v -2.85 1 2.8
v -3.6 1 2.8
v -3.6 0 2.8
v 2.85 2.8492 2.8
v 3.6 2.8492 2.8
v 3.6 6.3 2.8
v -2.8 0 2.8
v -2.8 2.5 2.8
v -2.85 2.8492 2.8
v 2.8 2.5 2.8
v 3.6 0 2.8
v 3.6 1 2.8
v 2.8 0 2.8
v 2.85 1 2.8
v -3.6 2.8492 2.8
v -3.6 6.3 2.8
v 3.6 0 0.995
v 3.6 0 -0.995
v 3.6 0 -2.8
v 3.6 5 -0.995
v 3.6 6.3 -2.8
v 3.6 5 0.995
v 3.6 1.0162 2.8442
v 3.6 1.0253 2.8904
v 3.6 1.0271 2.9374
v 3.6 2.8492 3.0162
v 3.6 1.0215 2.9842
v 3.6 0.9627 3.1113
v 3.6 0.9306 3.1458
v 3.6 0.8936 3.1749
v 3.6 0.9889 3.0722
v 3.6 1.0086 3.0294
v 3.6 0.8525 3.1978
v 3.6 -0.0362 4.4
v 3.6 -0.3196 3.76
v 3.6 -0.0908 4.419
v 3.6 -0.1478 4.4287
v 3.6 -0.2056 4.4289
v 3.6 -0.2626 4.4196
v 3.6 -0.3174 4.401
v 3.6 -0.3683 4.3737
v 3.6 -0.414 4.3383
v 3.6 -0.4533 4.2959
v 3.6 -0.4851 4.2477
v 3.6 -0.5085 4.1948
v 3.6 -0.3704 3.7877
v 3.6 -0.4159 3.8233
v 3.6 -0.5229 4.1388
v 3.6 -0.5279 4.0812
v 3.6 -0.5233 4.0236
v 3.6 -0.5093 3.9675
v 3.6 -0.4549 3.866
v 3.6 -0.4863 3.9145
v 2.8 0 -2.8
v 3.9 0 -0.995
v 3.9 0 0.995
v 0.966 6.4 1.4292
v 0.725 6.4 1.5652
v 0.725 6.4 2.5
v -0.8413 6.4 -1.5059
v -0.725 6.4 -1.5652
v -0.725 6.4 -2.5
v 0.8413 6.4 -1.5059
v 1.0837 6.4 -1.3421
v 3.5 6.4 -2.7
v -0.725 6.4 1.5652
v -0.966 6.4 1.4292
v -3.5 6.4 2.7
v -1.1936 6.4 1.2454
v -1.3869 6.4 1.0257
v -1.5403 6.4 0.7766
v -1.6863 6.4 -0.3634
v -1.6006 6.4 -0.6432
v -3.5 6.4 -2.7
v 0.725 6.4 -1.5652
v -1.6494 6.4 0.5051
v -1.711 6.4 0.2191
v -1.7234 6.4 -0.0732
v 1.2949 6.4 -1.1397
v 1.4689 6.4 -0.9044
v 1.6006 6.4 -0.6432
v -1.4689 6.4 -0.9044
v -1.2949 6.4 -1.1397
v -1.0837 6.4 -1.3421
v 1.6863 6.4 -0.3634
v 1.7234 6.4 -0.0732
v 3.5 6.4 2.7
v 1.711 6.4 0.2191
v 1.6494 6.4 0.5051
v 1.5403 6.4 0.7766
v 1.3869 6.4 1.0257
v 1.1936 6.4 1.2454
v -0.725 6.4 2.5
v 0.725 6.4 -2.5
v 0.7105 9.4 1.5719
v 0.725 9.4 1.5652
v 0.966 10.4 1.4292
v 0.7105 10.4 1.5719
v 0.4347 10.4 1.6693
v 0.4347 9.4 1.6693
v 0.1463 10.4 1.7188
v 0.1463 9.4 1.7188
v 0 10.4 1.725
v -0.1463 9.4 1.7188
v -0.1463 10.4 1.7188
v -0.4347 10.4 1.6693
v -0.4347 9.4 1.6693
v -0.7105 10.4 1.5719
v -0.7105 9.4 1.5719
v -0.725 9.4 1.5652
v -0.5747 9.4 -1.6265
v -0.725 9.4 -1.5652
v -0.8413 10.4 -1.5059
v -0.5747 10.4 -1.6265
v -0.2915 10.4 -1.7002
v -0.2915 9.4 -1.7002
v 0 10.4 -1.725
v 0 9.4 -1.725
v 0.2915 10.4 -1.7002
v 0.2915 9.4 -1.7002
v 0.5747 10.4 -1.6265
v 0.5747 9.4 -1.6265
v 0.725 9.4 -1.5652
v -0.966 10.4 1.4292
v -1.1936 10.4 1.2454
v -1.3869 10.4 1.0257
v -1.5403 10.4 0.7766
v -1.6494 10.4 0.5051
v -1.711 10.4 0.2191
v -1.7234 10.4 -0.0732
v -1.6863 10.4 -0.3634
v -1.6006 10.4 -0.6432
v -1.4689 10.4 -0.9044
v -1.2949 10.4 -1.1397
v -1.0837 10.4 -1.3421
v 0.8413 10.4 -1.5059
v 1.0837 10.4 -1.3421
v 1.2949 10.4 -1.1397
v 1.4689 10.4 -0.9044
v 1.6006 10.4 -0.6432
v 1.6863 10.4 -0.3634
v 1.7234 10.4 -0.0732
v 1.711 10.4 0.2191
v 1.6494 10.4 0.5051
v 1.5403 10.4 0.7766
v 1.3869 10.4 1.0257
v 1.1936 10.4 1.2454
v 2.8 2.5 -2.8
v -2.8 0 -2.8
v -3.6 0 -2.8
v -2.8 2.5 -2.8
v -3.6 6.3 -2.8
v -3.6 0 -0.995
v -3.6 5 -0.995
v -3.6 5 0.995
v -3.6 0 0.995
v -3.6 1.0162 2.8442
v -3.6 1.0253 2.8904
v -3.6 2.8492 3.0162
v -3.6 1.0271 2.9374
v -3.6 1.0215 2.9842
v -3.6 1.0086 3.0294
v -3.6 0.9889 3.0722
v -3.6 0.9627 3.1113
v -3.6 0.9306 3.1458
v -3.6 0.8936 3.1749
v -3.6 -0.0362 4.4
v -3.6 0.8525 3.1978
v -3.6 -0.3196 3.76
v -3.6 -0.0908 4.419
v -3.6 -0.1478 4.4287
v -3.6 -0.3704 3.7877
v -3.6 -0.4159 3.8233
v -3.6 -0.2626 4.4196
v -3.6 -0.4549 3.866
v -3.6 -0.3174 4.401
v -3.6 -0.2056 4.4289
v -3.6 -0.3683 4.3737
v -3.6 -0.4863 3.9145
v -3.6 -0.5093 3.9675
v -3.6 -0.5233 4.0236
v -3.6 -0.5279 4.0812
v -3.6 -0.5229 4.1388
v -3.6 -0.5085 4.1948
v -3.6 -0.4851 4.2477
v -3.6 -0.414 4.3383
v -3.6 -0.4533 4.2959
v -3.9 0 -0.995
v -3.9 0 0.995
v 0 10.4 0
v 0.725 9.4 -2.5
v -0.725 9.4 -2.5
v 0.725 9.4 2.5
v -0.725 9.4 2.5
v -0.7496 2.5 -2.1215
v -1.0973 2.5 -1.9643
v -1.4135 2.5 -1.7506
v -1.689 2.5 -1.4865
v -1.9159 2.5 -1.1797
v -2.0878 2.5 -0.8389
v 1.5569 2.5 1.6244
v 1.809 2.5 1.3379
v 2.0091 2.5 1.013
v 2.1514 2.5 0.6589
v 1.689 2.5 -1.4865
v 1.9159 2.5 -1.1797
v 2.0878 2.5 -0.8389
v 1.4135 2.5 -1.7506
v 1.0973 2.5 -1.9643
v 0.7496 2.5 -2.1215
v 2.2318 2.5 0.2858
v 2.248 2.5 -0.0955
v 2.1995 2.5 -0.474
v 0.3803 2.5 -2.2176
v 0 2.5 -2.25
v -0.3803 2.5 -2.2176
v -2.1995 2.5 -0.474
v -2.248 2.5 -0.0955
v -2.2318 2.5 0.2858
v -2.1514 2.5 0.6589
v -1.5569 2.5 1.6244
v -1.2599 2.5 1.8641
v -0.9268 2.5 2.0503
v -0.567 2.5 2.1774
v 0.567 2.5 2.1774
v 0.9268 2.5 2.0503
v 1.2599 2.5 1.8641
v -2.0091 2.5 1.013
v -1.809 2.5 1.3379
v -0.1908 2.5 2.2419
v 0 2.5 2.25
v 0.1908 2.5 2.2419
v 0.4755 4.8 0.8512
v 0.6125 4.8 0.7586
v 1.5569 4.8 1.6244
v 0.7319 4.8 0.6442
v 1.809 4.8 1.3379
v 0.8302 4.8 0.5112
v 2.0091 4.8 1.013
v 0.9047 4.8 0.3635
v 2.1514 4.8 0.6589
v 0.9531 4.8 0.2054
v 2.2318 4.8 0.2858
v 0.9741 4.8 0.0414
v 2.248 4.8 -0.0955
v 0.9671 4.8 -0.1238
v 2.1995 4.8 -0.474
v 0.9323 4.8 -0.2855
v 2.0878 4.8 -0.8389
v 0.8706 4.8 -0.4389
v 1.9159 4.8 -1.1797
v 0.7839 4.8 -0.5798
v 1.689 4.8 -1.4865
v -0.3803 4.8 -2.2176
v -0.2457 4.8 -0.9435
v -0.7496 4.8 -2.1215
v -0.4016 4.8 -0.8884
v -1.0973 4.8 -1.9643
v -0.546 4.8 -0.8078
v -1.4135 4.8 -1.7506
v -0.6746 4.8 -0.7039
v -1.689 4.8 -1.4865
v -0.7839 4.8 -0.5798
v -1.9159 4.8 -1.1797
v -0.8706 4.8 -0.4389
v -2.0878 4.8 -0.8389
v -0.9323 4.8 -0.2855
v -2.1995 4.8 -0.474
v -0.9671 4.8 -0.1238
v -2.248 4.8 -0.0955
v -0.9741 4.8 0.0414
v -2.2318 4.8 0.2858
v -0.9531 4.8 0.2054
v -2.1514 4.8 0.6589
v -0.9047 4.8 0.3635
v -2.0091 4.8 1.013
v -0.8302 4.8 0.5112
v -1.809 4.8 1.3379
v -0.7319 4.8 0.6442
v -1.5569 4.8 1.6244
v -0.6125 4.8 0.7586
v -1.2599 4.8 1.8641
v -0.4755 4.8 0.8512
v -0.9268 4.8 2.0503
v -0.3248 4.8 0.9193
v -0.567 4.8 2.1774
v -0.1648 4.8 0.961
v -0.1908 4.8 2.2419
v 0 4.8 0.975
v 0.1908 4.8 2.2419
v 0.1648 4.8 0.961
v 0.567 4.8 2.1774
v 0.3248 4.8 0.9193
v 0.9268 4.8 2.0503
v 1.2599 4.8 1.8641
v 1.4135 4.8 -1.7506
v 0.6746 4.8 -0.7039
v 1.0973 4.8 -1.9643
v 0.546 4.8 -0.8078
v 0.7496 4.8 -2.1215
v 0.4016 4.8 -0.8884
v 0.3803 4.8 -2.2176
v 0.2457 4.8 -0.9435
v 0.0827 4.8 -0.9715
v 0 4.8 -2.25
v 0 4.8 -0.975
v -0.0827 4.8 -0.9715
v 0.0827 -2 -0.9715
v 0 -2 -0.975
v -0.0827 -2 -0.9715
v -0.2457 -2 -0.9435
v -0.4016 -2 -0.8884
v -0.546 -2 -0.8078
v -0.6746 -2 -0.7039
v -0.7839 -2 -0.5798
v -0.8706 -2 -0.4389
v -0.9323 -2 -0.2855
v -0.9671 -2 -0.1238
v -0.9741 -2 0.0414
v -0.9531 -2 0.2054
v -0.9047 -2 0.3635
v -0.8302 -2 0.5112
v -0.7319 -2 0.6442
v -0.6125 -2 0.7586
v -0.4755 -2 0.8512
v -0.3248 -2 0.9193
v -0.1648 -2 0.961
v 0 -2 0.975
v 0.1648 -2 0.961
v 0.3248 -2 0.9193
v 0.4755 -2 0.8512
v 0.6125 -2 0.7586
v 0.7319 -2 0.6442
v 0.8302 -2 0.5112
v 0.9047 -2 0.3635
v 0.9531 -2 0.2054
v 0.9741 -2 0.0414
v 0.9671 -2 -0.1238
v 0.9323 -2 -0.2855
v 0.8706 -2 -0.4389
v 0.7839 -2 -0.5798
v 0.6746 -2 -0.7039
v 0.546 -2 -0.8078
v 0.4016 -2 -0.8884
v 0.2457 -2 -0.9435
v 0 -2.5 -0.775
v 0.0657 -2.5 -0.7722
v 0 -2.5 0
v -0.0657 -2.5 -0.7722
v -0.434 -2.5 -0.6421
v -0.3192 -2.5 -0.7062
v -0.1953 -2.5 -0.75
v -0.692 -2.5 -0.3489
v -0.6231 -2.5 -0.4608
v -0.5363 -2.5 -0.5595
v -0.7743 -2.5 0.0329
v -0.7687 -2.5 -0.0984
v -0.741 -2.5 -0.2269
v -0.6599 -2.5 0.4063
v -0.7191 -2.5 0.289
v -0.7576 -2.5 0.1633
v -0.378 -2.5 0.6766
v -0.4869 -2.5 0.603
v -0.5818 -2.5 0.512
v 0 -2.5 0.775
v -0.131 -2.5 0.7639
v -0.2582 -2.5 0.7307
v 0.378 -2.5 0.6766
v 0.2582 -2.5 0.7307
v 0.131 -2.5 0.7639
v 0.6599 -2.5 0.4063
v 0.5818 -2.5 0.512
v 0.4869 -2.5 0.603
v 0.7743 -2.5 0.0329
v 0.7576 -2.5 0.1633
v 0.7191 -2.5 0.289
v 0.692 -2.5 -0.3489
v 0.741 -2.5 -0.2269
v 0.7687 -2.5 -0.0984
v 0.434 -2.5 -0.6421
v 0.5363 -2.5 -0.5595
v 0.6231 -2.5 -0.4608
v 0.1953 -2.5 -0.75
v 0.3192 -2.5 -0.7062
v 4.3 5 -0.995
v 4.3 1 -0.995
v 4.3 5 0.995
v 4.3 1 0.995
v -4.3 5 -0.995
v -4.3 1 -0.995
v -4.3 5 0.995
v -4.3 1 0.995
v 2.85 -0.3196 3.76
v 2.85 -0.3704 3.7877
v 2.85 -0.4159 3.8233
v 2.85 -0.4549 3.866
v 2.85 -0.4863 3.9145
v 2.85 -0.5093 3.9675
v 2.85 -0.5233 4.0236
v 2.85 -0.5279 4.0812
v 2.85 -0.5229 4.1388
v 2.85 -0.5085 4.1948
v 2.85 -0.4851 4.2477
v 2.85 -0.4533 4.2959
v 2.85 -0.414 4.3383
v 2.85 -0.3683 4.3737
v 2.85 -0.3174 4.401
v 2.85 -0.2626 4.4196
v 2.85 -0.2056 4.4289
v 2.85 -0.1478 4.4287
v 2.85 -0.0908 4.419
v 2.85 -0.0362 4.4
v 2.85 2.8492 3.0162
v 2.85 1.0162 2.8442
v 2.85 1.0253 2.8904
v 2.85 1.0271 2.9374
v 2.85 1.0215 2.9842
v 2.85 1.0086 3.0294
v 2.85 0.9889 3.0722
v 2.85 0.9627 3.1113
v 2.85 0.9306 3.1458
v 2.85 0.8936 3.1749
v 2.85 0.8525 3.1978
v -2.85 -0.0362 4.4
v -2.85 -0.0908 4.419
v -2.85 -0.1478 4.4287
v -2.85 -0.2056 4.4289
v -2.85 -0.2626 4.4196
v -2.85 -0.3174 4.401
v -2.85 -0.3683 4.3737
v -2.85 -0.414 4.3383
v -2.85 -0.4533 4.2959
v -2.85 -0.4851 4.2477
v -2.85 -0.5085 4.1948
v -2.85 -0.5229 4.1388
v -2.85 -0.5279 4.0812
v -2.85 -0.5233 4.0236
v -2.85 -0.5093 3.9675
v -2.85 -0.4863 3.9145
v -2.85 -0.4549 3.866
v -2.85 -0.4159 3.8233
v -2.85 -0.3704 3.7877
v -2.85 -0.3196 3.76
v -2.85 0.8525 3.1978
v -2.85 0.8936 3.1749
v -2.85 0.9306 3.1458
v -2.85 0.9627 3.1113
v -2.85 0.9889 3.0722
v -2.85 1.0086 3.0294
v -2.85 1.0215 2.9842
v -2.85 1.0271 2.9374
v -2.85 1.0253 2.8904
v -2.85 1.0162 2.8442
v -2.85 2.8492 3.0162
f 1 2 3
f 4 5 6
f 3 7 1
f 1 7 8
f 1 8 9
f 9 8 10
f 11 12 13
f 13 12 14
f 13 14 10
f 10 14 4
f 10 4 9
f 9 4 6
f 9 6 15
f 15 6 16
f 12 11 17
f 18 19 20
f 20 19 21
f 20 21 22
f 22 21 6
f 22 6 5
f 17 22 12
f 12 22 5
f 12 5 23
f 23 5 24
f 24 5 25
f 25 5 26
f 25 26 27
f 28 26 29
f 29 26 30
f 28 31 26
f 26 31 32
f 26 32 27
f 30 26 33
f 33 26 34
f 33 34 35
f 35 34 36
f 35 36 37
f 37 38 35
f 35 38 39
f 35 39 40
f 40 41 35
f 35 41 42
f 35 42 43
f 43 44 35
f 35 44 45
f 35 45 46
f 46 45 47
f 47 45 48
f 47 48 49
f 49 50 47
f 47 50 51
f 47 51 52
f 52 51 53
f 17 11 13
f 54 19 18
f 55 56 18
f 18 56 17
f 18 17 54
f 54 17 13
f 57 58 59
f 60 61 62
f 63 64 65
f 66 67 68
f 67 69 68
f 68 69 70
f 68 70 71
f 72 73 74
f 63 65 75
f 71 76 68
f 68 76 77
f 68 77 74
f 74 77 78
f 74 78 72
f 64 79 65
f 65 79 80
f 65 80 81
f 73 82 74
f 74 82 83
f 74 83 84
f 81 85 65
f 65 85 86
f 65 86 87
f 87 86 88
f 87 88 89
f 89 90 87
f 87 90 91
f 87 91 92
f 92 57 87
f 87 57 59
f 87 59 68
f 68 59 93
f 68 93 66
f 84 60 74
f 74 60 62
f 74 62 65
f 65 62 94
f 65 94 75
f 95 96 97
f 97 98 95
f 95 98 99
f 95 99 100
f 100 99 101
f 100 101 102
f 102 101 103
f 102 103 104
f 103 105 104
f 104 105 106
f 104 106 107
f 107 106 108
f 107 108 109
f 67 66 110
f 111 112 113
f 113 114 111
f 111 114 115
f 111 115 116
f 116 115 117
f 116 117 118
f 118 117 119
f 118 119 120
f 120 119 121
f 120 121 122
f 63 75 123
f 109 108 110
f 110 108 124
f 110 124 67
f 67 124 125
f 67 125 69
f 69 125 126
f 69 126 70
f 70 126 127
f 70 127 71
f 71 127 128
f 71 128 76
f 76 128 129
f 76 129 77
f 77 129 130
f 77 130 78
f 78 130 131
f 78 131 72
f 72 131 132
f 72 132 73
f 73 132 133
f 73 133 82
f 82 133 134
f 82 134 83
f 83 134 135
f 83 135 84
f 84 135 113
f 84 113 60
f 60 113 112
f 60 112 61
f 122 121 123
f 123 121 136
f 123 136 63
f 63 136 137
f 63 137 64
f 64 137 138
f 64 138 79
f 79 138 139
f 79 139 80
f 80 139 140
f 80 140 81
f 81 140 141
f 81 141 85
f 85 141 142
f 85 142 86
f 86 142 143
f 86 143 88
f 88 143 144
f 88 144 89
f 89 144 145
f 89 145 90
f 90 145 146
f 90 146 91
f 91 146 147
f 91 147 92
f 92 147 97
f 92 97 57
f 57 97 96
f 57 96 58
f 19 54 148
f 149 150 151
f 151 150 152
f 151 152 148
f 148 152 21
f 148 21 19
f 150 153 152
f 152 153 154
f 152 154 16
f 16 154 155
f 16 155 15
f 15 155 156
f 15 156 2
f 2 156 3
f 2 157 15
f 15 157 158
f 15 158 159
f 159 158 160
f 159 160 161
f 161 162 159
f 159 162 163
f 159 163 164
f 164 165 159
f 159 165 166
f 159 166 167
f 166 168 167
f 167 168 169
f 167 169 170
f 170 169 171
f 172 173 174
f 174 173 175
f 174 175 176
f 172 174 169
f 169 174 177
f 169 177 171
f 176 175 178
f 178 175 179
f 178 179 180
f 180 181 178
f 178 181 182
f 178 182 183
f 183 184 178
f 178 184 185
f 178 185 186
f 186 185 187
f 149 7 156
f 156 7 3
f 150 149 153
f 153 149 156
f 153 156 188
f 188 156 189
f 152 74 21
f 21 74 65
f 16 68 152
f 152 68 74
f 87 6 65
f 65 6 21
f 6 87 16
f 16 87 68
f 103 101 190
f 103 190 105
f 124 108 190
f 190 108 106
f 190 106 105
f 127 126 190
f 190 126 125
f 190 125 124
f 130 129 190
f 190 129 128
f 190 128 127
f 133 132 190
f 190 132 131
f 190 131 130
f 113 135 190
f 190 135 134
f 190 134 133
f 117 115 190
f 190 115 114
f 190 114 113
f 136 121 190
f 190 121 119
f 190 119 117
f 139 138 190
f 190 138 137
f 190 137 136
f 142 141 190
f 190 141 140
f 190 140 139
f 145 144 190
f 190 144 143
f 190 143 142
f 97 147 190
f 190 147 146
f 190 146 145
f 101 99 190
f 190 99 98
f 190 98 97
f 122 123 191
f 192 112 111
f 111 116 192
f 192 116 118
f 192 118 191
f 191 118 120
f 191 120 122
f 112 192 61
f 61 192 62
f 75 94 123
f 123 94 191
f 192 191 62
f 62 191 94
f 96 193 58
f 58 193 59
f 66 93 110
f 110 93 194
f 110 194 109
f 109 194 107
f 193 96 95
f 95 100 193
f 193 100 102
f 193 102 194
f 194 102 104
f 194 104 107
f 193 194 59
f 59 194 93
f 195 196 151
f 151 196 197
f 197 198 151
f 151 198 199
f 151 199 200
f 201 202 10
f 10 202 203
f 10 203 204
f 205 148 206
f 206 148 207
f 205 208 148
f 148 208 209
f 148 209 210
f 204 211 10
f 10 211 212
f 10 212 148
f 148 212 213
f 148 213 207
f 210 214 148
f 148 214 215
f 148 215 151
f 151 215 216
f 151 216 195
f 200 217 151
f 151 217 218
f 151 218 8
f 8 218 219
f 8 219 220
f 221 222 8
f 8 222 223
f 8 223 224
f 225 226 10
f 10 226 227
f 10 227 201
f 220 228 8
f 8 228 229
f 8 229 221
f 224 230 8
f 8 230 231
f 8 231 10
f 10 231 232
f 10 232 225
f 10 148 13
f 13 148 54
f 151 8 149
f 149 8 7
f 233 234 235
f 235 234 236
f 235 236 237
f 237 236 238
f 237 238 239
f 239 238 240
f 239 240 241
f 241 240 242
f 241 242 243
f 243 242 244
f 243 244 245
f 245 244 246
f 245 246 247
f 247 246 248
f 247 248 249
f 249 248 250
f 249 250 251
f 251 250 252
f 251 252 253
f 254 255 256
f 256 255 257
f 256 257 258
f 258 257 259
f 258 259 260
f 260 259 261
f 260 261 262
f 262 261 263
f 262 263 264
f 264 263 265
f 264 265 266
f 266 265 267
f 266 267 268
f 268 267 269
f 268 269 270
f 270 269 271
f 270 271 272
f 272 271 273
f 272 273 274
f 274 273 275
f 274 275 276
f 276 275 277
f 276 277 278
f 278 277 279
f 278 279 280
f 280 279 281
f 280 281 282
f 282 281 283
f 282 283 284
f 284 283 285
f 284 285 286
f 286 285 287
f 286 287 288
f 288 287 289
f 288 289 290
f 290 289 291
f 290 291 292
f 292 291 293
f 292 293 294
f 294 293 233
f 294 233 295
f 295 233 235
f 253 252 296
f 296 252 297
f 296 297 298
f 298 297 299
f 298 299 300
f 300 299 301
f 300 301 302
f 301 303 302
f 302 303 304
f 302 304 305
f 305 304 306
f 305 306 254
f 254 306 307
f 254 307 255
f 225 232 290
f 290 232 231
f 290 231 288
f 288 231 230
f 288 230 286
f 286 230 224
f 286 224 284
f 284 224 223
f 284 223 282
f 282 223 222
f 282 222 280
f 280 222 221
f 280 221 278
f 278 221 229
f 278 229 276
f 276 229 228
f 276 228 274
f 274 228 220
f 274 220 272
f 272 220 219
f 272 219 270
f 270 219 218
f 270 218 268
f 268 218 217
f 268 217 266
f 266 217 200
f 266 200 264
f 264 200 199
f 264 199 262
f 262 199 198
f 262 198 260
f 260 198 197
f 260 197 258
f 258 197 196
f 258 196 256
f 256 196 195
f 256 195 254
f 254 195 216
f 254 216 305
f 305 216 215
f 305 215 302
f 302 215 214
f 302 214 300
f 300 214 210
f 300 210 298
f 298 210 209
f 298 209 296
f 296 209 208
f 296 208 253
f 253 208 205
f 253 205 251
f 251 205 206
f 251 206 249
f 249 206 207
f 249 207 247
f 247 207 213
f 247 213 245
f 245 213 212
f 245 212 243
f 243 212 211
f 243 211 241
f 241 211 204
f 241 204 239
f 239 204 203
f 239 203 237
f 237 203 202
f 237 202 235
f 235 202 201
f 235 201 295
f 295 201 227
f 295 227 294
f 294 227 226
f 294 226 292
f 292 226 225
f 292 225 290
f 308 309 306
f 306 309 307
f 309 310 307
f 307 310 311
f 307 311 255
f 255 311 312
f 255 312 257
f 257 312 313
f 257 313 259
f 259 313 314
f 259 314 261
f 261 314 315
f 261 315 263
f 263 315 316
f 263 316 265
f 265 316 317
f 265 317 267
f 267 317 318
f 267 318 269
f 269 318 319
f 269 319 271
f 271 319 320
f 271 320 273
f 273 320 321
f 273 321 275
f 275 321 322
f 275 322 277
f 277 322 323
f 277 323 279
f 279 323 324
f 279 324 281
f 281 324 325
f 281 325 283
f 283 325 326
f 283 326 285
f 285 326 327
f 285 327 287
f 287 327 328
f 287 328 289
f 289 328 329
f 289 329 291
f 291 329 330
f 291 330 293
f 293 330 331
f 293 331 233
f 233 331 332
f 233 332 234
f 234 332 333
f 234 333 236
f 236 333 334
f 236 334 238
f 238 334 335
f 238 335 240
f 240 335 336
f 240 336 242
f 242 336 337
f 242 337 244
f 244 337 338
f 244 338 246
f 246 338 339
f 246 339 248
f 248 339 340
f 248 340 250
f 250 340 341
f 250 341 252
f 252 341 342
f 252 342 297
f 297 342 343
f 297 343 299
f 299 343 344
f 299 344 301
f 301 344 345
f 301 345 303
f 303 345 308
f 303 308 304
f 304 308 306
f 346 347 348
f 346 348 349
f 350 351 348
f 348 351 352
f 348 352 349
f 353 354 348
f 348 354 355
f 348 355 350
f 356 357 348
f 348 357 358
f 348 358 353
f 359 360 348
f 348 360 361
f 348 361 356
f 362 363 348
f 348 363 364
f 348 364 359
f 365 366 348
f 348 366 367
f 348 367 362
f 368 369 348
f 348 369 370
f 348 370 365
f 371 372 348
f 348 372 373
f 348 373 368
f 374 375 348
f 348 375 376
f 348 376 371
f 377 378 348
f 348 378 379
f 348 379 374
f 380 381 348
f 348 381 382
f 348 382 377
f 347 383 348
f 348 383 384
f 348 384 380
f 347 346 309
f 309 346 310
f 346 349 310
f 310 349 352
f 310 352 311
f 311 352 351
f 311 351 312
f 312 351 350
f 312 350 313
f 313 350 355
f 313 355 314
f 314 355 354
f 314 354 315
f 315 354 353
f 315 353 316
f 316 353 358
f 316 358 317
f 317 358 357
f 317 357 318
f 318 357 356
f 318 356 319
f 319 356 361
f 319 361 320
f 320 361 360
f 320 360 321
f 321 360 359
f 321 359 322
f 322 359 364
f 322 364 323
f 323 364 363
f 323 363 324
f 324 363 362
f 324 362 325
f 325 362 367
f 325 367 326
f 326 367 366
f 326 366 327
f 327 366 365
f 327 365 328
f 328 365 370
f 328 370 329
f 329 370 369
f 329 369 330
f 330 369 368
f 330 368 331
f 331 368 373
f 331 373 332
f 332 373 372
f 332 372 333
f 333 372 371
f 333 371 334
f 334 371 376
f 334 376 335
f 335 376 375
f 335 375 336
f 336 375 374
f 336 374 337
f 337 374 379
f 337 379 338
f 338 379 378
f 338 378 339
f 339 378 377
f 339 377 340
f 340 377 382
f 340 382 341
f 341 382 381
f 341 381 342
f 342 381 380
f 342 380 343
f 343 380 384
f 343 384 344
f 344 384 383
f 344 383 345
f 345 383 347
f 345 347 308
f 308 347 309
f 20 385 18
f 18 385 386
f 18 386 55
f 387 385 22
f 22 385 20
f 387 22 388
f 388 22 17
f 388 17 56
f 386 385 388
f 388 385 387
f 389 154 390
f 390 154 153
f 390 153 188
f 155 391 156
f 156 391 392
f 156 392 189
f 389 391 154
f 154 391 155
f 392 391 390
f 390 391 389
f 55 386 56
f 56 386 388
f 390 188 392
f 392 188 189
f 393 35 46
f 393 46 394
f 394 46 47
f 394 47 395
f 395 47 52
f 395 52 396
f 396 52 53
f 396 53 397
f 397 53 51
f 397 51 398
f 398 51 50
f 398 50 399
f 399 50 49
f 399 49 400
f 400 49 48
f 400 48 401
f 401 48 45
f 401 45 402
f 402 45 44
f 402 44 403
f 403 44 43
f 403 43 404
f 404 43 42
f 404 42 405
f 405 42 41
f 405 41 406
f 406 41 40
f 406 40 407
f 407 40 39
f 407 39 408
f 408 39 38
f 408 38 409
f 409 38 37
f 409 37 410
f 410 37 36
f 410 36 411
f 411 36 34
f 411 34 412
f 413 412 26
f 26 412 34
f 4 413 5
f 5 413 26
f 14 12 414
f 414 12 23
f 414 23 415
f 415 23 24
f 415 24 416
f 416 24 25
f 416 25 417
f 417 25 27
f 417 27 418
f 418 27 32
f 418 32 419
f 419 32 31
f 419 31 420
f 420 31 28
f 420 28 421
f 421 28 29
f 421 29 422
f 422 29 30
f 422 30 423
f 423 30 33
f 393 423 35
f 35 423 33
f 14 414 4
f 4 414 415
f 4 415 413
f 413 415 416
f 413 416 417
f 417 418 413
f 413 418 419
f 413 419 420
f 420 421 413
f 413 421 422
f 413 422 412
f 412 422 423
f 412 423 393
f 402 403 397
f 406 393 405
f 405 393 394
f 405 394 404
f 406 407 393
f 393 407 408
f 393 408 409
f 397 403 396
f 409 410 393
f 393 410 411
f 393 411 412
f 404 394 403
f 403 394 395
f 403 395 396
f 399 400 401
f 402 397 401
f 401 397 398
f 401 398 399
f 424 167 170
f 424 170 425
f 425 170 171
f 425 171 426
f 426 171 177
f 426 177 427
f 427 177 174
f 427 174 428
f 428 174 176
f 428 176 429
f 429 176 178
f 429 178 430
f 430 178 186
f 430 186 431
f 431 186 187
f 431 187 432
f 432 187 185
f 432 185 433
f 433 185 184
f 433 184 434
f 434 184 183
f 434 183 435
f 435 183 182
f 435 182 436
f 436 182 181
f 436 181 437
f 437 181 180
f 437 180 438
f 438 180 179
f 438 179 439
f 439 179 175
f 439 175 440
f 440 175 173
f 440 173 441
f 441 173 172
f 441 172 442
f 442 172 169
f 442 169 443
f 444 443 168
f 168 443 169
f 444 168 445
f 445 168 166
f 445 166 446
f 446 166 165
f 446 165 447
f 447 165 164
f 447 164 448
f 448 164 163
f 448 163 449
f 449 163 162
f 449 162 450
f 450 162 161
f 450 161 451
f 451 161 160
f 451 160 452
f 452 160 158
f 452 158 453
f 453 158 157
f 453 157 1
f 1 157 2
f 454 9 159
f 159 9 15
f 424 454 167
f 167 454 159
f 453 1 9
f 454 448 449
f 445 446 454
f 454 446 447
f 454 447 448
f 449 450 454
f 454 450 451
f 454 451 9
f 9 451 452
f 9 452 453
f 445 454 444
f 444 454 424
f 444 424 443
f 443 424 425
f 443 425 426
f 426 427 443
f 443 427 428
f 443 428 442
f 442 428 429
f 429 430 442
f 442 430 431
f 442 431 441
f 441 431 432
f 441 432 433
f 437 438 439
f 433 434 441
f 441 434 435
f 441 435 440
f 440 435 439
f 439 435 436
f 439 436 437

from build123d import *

# Parameters (mm, degrees)
SKETCH1_W                = 7.2
SKETCH1_H                = 5.6
BODY_DEPTH               = 6.4
BODY_CHAMFER_SIZE        = 0.1
SKETCH2_R                = 1.725
MOUNT_DEPTH              = 4
SKETCH3_W                = 1.45
SKETCH3_H                = 5
MOUNT_RAILS_DEPTH        = 3
SKETCH4_R                = 2.25
BODY_CUT_1_DEPTH         = 4.8
SKETCH5_W                = 5.6
SKETCH5_H                = 5.6
BODY_CUT_2_DEPTH         = 2.5
SKETCH6_R                = 0.975
POLE_DEPTH               = 7.3
POLE_CHAMFER_SIZE        = 0.5
POLE_CHAMFER_SIZE2       = 0.2
SKETCH7_W                = 1.99
SKETCH7_H                = 5
RIGHT_RAIL_DEPTH         = 0.7
RIGHT_RAIL_CHAMFER_SIZE  = 0.4
RIGHT_RAIL_CHAMFER_SIZE2 = 1
LEFT_RAIL_CHAMFER_SIZE   = 1
LEFT_RAIL_CHAMFER_SIZE2  = 0.4
RIGHT_LEG_DEPTH          = 0.75


with BuildPart() as part:
    # Sketch1 → Body (new body)
    with BuildSketch(Plane(origin=(0, 0, 0), x_dir=(1, 0, 0), z_dir=(0, 1, 0))):
        Rectangle(SKETCH1_W, SKETCH1_H)
    extrude(amount=BODY_DEPTH)

    # Body Chamfer
    body_chamfer_edges = [part.edges().sort_by_distance(p)[0] for p in [
        (-3.6, 6.4, 0),
        (0, 6.4, 2.8),
        (3.6, 6.4, 0),
        (0, 6.4, -2.8),
    ]]
    chamfer(body_chamfer_edges, length=BODY_CHAMFER_SIZE)

    # Sketch2 → Mount (add)
    with BuildSketch(Plane(origin=(0, 6.4, 0), x_dir=(1, 0, 0), z_dir=(0, 1, 0))):
        Circle(SKETCH2_R)
    extrude(amount=MOUNT_DEPTH)

    # Sketch3 → Mount Rails (add)
    with BuildSketch(Plane(origin=(0, 6.4, 0), x_dir=(1, 0, 0), z_dir=(0, 1, 0))):
        Rectangle(SKETCH3_W, SKETCH3_H)
    extrude(amount=MOUNT_RAILS_DEPTH)

    # Sketch4 → Body Cut 1 (cut)
    with BuildSketch(Plane.XZ):
        Circle(SKETCH4_R)
    extrude(amount=-BODY_CUT_1_DEPTH, mode=Mode.SUBTRACT)

    # Sketch5 → Body Cut 2 (cut)
    with BuildSketch(Plane.XZ):
        Rectangle(SKETCH5_W, SKETCH5_H)
    extrude(amount=-BODY_CUT_2_DEPTH, mode=Mode.SUBTRACT)

    # Sketch6 → Pole (add)
    with BuildSketch(Plane.XZ.offset(-4.8)):
        Circle(SKETCH6_R)
    extrude(amount=POLE_DEPTH)

    # Pole Chamfer
    pole_chamfer_edges = [part.edges().sort_by_distance(p)[0] for p in [
        (-0.975, -2.5, 0),
    ]]
    pole_chamfer_side = [part.faces().sort_by_distance(p)[0] for p in [
        (-0.975, 1.15, 0),
    ]]
    chamfer(pole_chamfer_edges, length=POLE_CHAMFER_SIZE, length2=POLE_CHAMFER_SIZE2, reference=pole_chamfer_side[0])

    # Sketch7 → Right Rail (add)
    with BuildSketch(Plane(origin=(3.6, 0, 0), x_dir=(0, 0, -1), z_dir=(1, 0, 0))):
        with Locations((0, 2.5)):
            Rectangle(SKETCH7_W, SKETCH7_H)
    right_rail = extrude(amount=RIGHT_RAIL_DEPTH)

    # Rail Mirror: Right Rail across plane
    add(right_rail.mirror(Plane(origin=(0, 0, 0), x_dir=(0, 0, 1), z_dir=(1, 0, 0))))

    # Right Rail Chamfer
    right_rail_chamfer_edges = [part.edges().sort_by_distance(p)[0] for p in [
        (4.3, 0, 0),
    ]]
    right_rail_chamfer_side = [part.faces().sort_by_distance(p)[0] for p in [
        (3.377890346, 0, 0),
    ]]
    chamfer(right_rail_chamfer_edges, length=RIGHT_RAIL_CHAMFER_SIZE, length2=RIGHT_RAIL_CHAMFER_SIZE2, reference=right_rail_chamfer_side[0])

    # Left Rail Chamfer
    left_rail_chamfer_edges = [part.edges().sort_by_distance(p)[0] for p in [
        (-4.3, 0, 0),
    ]]
    left_rail_chamfer_side = [part.faces().sort_by_distance(p)[0] for p in [
        (-4.3, 2.5, 0),
    ]]
    chamfer(left_rail_chamfer_edges, length=LEFT_RAIL_CHAMFER_SIZE, length2=LEFT_RAIL_CHAMFER_SIZE2, reference=left_rail_chamfer_side[0])

    # Sketch8 → Right Leg (add)
    with BuildSketch(Plane(origin=(3.6, 0, 0), x_dir=(0, 0, -1), z_dir=(1, 0, 0))):
        with BuildLine():
            Line((-3.016216216, 2.849166829), (-4.4, -0.036165464))
            ThreePointArc((-4.4, -0.036165464), (-4.221723875, -0.497920402), (-3.759968937, -0.319644277))
            Line((-3.759968937, -0.319644277), (-3.197806774, 0.852521967))
            ThreePointArc((-3.197806774, 0.852521967), (-3.029447088, 1.008649464), (-2.8, 1))
            Line((-2.8, 1), (-2.8, 2.849166829))
            Line((-2.8, 2.849166829), (-3.016216216, 2.849166829))
        make_face()
    right_leg = extrude(amount=-RIGHT_LEG_DEPTH)

    # Leg Mirror: Right Leg across plane
    add(right_leg.mirror(Plane(origin=(0, 0, 0), x_dir=(0, 0, 1), z_dir=(1, 0, 0))))


solid = part.part
